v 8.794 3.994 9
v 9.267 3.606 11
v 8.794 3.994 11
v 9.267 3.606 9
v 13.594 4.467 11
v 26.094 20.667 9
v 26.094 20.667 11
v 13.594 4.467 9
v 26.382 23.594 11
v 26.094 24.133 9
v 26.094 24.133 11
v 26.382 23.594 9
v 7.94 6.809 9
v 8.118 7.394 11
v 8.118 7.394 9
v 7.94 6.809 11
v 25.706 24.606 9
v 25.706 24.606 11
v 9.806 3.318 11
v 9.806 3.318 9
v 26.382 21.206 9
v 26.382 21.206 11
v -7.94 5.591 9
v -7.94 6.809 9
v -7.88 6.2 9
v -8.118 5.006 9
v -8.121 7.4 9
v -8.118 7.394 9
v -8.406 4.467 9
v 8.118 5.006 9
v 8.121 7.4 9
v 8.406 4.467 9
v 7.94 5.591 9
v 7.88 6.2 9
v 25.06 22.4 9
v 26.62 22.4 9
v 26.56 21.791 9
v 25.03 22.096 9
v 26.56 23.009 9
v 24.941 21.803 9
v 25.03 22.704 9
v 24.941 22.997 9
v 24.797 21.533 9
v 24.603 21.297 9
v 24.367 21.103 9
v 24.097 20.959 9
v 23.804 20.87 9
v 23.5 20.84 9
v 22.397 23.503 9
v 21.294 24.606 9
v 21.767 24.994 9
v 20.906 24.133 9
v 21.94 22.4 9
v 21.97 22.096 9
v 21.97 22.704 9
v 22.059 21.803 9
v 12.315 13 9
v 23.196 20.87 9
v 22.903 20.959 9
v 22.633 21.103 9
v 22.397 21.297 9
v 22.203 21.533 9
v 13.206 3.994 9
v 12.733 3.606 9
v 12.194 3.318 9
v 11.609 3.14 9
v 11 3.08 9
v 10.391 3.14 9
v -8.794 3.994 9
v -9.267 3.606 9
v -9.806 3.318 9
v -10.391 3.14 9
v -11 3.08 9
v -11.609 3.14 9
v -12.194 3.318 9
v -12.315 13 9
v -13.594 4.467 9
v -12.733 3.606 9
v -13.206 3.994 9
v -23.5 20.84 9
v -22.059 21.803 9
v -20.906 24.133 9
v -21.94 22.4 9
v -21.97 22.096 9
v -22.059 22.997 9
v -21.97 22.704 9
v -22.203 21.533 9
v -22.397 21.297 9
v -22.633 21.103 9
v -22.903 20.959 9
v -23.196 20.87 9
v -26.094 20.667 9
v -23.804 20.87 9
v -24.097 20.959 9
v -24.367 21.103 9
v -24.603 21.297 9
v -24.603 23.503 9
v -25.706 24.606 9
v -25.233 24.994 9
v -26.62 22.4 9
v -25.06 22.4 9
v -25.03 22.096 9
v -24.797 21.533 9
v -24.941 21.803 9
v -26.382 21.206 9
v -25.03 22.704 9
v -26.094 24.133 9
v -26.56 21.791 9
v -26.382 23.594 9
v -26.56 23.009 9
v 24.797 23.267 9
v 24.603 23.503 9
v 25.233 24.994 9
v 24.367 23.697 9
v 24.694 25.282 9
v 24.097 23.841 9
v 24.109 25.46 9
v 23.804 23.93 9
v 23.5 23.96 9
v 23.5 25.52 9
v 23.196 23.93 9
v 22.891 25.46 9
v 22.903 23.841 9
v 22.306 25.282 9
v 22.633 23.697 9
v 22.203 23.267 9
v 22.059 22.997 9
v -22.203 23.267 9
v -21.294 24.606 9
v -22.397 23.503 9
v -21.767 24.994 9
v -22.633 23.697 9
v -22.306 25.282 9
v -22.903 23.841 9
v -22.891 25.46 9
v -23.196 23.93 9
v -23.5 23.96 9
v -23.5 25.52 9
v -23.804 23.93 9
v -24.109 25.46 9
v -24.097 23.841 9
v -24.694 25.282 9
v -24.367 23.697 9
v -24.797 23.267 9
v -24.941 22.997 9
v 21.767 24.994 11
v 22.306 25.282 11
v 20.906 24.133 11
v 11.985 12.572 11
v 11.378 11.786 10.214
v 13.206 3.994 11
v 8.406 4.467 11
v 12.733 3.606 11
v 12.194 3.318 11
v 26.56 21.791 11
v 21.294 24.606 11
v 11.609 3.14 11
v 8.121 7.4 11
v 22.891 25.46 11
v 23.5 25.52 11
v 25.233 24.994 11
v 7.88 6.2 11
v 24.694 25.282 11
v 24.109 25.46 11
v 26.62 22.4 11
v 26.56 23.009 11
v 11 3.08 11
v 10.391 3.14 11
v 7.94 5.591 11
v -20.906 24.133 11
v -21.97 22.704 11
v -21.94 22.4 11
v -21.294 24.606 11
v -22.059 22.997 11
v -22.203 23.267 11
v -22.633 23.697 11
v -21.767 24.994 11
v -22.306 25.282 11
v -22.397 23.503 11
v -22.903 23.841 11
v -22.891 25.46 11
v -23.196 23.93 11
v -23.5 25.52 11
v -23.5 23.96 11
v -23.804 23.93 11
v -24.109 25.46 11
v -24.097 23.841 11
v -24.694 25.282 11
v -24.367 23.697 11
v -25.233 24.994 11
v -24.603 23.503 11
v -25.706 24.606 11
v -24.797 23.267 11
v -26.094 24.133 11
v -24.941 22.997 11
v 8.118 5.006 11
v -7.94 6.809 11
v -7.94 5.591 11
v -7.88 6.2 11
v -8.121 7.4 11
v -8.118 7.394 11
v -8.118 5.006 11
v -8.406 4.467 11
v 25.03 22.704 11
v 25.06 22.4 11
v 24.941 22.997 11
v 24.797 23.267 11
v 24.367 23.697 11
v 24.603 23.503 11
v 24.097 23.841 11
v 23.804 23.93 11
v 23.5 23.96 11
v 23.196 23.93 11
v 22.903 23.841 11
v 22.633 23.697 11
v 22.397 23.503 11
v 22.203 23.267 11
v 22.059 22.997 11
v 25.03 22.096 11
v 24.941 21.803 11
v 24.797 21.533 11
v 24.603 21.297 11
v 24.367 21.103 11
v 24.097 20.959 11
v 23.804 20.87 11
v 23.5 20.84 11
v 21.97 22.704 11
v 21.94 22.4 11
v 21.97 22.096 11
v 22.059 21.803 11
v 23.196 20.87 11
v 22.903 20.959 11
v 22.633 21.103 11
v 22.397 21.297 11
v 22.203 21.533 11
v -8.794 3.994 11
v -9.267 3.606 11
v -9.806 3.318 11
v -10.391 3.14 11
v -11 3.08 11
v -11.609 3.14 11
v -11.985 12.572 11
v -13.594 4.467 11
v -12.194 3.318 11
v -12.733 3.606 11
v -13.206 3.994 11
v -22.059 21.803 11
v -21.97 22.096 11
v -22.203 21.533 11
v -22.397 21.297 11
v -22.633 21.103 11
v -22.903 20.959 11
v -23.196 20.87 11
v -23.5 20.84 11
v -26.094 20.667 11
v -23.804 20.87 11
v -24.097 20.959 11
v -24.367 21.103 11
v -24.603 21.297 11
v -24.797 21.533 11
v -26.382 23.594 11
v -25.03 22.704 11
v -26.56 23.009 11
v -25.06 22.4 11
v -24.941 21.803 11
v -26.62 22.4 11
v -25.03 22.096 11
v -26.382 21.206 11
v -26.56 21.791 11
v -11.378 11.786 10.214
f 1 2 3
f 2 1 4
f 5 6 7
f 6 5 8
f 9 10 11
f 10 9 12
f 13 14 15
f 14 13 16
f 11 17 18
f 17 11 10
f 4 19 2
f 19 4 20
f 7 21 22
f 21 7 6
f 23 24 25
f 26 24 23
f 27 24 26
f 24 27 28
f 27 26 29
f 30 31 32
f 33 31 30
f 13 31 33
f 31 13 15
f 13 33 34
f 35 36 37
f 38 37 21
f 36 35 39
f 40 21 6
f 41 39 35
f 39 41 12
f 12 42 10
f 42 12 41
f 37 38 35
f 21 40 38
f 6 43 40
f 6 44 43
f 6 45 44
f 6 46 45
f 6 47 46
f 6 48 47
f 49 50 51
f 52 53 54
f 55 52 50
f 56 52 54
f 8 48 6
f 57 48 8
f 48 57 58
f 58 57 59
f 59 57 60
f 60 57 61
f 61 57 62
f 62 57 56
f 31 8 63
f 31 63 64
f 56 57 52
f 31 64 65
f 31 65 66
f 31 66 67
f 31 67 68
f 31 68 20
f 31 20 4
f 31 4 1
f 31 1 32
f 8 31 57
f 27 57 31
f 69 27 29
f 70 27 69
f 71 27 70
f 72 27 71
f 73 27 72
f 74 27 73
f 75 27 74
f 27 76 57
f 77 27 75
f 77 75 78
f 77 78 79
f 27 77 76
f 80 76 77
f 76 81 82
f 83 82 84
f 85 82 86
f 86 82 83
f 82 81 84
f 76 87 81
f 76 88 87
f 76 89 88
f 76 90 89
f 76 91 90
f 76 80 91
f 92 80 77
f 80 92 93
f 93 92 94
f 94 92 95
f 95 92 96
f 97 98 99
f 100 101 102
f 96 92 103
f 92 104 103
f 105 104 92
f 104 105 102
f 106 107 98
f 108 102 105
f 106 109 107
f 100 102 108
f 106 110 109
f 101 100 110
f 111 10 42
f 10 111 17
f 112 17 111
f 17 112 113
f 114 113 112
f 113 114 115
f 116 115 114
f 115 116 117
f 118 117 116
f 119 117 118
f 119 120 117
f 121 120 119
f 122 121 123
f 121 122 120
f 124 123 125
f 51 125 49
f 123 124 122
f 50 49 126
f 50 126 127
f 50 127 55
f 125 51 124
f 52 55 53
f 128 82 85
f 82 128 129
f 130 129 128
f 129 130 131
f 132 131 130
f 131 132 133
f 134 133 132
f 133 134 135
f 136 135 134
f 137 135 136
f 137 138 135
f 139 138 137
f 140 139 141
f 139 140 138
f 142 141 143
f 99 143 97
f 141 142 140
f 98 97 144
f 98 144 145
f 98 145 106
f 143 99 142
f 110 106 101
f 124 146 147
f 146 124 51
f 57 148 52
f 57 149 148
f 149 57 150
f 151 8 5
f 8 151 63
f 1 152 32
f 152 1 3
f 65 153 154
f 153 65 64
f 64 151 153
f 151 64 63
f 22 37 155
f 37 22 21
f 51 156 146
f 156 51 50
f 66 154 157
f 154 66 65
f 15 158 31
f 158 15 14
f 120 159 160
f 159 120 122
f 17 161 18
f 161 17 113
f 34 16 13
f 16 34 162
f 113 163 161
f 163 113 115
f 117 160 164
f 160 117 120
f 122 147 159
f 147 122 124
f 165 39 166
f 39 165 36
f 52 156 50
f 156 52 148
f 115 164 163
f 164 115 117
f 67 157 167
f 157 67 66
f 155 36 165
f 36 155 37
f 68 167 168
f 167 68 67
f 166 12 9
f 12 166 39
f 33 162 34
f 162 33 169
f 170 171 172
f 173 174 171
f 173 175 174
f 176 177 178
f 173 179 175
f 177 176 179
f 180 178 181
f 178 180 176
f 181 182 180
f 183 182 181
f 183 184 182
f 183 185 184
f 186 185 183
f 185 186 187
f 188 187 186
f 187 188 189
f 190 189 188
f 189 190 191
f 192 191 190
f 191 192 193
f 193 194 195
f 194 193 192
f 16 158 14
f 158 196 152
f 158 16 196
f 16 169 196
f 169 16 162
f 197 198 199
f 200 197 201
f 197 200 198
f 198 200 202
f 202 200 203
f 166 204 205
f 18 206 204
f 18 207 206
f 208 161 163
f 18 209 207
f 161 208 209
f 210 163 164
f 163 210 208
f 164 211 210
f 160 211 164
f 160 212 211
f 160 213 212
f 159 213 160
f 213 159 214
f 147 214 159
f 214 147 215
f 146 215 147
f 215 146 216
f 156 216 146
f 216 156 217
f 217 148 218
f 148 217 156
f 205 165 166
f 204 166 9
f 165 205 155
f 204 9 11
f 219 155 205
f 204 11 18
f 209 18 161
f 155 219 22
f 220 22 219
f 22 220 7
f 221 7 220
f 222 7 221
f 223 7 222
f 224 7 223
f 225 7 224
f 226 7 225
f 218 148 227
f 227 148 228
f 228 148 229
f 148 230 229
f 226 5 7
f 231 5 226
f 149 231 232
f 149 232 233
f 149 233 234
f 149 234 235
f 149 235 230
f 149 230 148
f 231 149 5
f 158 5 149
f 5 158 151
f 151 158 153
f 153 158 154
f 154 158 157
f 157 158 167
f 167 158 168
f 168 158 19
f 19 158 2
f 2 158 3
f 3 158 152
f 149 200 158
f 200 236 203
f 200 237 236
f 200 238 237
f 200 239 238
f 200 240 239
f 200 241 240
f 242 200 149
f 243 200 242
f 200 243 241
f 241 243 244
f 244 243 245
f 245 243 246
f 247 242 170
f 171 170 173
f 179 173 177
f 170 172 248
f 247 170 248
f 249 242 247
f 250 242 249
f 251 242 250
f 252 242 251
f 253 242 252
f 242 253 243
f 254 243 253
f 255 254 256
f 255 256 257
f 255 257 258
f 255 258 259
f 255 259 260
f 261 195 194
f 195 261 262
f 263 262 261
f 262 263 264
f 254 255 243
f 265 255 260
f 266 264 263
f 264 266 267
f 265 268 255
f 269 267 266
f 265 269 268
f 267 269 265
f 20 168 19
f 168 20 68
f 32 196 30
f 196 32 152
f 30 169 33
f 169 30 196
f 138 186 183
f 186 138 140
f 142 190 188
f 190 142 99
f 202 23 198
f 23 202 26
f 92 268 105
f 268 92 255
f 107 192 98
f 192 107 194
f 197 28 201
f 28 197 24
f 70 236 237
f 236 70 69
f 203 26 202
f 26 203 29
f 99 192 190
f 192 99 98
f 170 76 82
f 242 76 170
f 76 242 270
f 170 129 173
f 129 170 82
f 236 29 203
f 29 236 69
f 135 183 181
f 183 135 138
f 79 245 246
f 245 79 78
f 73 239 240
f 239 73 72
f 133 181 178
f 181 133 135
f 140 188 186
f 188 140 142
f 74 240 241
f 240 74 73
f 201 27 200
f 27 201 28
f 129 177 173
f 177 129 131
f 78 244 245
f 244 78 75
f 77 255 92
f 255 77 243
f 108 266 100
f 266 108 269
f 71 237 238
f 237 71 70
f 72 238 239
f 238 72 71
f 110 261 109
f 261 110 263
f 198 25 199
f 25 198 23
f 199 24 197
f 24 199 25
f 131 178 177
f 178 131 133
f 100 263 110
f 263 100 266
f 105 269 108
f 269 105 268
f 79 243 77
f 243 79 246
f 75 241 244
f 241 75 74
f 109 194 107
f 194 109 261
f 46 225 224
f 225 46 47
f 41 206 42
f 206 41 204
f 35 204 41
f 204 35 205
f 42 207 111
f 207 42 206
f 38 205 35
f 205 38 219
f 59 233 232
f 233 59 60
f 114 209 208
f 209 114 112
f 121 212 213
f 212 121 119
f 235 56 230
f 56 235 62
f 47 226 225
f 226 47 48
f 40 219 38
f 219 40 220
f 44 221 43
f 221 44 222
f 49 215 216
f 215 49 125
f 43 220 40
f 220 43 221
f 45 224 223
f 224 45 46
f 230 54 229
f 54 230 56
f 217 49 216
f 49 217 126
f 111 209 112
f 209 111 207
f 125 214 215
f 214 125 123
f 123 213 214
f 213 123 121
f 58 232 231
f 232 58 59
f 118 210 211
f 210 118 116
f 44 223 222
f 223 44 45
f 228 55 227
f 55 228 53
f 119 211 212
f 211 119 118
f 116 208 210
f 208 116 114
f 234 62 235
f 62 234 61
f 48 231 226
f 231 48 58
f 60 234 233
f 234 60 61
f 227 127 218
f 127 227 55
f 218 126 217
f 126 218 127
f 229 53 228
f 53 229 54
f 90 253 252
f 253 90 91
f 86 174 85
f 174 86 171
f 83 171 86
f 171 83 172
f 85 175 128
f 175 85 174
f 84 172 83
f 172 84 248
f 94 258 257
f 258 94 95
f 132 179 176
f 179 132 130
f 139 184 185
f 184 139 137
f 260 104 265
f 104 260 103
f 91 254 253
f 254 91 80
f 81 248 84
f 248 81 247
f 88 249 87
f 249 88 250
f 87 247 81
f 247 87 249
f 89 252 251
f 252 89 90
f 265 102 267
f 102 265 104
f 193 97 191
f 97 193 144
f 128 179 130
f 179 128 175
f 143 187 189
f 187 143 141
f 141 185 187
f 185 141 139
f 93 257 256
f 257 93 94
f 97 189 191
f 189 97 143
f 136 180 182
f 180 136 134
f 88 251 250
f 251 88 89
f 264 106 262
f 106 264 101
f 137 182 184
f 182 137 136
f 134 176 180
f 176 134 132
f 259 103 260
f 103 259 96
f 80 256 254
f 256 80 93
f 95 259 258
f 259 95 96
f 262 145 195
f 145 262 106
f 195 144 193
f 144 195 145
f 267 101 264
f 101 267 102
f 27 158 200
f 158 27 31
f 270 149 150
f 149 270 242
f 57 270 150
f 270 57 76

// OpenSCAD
// file: mixin.scad
wall = 2;
diameter = 71.5;
display_length = 77;
display_pcb_width = 19.2;
display_slot_width = 20.6;
display_slot_length = 67;
display_window_length = 56;
display_window_width = 17.4;
esp32c3_width = 18.5;
esp32c3_length = 24;

module rail_side(half_width, length, y, rail_height=9) {
  translate([-half_width - 2, y, 2]) cube([2, length, rail_height]);
  hull() {
    translate([-half_width - 0.15, y, 2 + rail_height - 3.5]) rotate([0, -40, 0]) cube([1.5, length, 1]);
    translate([-half_width - 0.5, y, 2 + rail_height - 2.6]) cube([1.5, length, 1]);
  }
  translate([-half_width - 0.35, y, 2 + rail_height - 1.0]) rotate([0, -40, 0]) cube([1.3, length, 1]);
}

module rail(half_width, length, y, rail_height=9) {
  rail_side(half_width, length, y, rail_height);
  mirror([1, 0, 0]) rail_side(half_width, length, y, rail_height);
}

module esp32c3_mini_rails() {
  rail(esp32c3_width / 2, esp32c3_length - 8, 19);
}

module tp4057_rails() {
  rail(13 / 2, 14, -36, 13);
}

module button_cutout() {
  size = 14.1;
  translate([-size / 2, -24.5, -2.5]) cube(size=size);
}

module display_slot_cutout() {
  translate([-display_slot_length / 2, (display_pcb_width - display_slot_width) / 2, 0.4]) cube([display_slot_length, display_slot_width, 100]);
}

module display_window_cutout(clearance = 0) {
  width = display_window_width + clearance;
  translate([-display_window_length / 2, (display_pcb_width - width) / 2, -0.1])
      cube([display_window_length, width, 100]);
}

module display() {
  difference() {
    hull() {
      length = display_length + wall * 2 + 0.5;
      width = display_pcb_width + wall * 2 + 0.5;
      translate([-length / 2, 0, 0]) cube(size=[length, width, height]);

      cylinder(h=height, d=diameter + wall * 2, $fn=256);
    }

    hull() {
      length = display_length + 0.5;
      width = display_pcb_width + 3.5;
      translate([-length / 2, 0, wall]) cube(size=[length, width, height + wall]);

      translate([0, 0, wall]) cylinder(h=height, d=diameter + 0.3, $fn=256);
    }
  }
}

module type_c_cutout() {
  translate([0, diameter / 2 + 4, 8.5]) rotate([90, 0, 0])
      hull() {
        translate([-2.9, 0, 0]) cylinder(h=10, d=3.7, $fn=64);
        translate([2.9, 0, 0]) cylinder(h=10, d=3.7, $fn=64);
      }
}

module leg(leg_height) {
  difference() {
    cylinder(h=leg_height, d=6.24, $fn=32);
    cylinder(h=leg_height + 1, d=3.06, $fn=32);
  }
}
// main file
include <mixin.scad>;

height = 15;

module display_cutout() {
  display_slot_cutout();
  display_window_cutout(clearance = 0.4);
}

module battery_mounts() {
  translate([12.7, -8.8, 0]) leg(height - wall);
  translate([-12.7, -8.8, 0]) leg(height - wall);

  translate([12.7, 27.4, 0]) leg(height - wall);
  translate([-12.7, 27.4, 0]) leg(height - wall);
}

module stopper() {
  translate([0, 0, wall]) {

    difference() {
      union() {
        hull() {
          translate([11, display_pcb_width - 13, 7]) leg(wall);

          translate([display_length / 2 - 15, display_pcb_width + 3.2, 7]) leg(wall);
        }

        hull() {
          translate([-11, display_pcb_width - 13, 11 - wall * 2]) leg(wall);
          translate([-display_length / 2 + 15, display_pcb_width + 3.2, 11 - wall * 2]) leg(wall);
        }
      }

      translate([display_length / 2 - 15, display_pcb_width + 3.2, 6]) cylinder(10, d=3.12, $fn=32);

      translate([-display_length / 2 + 15, display_pcb_width + 3.2, 6]) cylinder(10, d=3.12, $fn=32);
    }

    difference() {
      length = 30;
      translate([-length / 2, display_pcb_width - 11.8, height - wall * 4]) cube([length, 6, wall]);
      translate([-length / 2, display_pcb_width - 6, height - wall * 4 - 0.2]) rotate([45, 0, 0]) cube([length, wall, wall]);
    }
  }
}

stopper();
